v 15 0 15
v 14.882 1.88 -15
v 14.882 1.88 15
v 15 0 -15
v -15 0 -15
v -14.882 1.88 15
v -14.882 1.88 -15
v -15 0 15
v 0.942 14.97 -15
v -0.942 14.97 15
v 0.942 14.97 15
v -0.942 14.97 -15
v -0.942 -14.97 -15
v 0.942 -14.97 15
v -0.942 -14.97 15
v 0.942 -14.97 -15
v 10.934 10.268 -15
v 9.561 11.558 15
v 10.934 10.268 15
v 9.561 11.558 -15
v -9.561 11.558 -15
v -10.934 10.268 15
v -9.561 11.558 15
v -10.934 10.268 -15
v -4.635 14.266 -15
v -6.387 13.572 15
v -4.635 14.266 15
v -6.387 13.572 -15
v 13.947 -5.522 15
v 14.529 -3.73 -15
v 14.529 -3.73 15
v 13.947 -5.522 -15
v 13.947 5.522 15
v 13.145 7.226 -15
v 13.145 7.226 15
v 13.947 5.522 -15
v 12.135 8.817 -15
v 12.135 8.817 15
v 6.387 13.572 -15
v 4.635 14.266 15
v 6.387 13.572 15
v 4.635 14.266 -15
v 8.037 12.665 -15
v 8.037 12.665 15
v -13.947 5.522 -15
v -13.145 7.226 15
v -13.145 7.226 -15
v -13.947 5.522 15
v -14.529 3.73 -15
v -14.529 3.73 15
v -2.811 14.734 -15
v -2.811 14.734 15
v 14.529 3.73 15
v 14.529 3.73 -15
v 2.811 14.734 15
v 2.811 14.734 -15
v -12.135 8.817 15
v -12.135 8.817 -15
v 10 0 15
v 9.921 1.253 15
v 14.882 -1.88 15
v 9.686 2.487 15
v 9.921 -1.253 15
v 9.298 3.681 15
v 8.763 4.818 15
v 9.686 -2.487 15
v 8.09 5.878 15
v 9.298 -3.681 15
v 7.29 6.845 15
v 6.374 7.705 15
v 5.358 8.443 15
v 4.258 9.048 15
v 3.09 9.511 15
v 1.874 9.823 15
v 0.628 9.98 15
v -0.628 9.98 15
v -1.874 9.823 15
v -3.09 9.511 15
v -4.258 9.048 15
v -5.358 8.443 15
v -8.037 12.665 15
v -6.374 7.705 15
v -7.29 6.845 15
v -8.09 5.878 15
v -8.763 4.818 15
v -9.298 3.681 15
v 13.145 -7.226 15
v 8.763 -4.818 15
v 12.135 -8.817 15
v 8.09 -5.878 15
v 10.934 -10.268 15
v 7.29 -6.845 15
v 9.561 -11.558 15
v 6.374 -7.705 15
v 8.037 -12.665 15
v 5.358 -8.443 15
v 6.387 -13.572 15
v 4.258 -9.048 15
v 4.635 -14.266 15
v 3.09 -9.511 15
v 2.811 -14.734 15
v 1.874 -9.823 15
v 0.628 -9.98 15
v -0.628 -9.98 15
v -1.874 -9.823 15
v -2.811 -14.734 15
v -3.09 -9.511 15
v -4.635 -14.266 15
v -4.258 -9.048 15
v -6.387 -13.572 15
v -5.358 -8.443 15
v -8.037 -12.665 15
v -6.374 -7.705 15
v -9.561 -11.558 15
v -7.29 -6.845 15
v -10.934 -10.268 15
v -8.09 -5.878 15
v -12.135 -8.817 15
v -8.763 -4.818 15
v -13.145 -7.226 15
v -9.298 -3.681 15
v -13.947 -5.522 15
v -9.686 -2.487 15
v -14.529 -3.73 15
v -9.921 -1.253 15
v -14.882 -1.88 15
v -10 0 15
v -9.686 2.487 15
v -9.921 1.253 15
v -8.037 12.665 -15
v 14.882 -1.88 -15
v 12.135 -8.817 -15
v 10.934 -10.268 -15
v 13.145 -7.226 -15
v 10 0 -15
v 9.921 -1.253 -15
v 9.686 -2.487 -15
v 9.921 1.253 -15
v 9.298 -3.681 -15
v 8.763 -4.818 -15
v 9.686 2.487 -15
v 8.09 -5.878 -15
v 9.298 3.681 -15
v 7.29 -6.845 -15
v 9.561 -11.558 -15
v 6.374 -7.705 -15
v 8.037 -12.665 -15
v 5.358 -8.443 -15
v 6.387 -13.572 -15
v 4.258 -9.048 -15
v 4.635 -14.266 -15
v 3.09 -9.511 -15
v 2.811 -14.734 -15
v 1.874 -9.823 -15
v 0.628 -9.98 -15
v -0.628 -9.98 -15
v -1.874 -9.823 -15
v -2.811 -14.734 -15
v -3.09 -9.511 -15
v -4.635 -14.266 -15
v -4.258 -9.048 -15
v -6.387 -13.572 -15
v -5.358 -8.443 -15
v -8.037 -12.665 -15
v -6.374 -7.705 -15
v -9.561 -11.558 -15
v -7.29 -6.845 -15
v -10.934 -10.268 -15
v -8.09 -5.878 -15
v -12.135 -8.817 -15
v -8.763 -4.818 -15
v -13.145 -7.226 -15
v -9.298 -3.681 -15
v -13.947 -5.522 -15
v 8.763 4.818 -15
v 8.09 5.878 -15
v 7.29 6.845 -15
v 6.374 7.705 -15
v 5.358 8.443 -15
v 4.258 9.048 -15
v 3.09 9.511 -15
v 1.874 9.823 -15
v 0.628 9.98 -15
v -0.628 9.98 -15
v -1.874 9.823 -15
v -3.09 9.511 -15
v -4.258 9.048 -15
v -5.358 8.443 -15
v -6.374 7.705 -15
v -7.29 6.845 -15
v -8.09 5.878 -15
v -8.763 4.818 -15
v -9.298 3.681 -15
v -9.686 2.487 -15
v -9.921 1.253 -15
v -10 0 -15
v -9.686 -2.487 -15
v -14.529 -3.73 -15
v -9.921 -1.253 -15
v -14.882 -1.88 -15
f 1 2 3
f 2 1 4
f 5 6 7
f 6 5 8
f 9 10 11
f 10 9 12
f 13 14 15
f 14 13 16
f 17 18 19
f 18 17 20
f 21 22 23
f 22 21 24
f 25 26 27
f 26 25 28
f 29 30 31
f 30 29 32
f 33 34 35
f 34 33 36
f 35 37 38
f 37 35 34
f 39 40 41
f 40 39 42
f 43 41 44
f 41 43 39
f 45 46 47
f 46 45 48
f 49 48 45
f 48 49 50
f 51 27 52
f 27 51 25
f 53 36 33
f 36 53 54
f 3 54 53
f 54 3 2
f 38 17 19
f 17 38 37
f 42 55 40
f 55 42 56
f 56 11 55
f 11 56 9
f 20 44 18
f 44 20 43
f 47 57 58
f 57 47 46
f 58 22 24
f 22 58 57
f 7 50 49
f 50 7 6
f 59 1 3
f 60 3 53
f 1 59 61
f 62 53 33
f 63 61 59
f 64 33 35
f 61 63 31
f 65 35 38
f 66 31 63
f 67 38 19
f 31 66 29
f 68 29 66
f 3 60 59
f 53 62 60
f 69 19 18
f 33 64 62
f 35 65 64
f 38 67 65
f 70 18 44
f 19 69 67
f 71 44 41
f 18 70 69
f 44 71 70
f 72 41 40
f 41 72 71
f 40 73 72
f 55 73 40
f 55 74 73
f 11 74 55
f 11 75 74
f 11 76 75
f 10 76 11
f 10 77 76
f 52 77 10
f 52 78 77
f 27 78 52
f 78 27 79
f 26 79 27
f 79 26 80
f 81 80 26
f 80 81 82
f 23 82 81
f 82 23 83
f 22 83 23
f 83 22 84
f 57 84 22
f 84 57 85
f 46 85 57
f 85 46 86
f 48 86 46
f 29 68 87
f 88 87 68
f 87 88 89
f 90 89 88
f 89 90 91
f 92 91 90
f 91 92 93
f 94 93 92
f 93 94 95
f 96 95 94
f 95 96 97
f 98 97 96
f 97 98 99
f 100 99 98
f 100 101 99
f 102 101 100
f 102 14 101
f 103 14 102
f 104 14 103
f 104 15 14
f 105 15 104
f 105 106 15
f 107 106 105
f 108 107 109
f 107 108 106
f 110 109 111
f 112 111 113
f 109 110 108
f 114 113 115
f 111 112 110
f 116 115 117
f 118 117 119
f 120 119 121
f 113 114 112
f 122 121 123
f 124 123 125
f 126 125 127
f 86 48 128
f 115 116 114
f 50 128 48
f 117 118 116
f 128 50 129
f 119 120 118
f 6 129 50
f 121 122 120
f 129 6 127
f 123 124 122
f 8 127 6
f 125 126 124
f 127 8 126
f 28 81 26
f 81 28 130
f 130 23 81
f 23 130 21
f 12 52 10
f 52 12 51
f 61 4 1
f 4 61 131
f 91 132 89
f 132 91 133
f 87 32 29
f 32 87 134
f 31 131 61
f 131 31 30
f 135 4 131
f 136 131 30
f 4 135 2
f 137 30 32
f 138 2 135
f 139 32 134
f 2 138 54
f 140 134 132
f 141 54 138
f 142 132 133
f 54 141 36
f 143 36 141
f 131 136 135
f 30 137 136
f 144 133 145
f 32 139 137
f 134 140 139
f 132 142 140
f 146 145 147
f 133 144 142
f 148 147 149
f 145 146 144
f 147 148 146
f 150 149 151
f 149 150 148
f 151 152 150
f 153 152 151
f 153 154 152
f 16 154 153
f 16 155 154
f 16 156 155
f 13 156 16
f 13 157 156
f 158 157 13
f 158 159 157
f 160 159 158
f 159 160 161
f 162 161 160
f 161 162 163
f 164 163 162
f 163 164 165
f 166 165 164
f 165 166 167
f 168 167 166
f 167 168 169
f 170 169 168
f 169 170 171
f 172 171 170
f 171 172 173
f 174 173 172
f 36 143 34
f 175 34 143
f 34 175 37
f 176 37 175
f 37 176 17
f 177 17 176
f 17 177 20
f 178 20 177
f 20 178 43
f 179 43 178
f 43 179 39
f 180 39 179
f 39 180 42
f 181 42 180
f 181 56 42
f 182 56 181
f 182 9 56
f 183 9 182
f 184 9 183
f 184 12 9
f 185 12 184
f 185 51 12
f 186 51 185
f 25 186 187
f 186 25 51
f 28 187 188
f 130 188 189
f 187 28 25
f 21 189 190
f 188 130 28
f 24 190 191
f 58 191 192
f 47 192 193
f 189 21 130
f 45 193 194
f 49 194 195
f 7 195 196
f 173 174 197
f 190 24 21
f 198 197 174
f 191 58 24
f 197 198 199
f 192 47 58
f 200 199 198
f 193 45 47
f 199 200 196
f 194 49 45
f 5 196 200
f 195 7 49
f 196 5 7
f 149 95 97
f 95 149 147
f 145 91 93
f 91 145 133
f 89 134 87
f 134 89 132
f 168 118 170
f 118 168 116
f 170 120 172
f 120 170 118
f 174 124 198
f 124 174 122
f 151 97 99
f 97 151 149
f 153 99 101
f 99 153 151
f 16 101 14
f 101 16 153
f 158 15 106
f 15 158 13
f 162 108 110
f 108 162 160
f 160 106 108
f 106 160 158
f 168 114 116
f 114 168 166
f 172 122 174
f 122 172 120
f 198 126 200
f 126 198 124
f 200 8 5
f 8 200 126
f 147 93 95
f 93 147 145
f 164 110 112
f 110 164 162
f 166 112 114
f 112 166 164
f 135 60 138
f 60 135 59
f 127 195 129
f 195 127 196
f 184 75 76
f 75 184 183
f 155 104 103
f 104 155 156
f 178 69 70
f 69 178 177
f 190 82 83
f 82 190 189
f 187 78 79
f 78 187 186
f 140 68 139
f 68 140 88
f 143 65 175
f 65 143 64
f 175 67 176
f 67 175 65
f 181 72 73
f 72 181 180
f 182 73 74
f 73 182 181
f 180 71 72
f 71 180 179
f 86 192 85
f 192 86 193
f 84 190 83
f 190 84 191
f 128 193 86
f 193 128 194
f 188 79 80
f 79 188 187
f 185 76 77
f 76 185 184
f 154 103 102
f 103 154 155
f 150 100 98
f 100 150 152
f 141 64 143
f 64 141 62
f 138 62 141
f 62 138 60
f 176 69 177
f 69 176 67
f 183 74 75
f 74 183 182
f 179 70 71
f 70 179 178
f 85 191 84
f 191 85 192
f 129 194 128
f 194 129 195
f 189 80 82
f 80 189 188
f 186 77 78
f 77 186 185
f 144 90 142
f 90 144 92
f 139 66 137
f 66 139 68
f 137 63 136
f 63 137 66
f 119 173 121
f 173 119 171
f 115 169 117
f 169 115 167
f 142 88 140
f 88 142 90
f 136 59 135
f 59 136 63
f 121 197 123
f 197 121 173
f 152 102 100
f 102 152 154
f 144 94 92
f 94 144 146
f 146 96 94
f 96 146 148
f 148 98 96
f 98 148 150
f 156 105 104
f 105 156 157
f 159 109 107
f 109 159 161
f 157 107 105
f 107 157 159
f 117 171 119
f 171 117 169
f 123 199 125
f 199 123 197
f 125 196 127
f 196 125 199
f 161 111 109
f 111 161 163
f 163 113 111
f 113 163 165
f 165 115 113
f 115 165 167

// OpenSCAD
$fn = 50;


difference() {
	union() {
		translate(v = [0, 0, -15.0000000000]) {
			cylinder(h = 30, r = 15.0000000000);
		}
	}
	union() {
		translate(v = [0, 0, -100.0000000000]) {
			cylinder(h = 200, r = 10);
		}
	}
}
